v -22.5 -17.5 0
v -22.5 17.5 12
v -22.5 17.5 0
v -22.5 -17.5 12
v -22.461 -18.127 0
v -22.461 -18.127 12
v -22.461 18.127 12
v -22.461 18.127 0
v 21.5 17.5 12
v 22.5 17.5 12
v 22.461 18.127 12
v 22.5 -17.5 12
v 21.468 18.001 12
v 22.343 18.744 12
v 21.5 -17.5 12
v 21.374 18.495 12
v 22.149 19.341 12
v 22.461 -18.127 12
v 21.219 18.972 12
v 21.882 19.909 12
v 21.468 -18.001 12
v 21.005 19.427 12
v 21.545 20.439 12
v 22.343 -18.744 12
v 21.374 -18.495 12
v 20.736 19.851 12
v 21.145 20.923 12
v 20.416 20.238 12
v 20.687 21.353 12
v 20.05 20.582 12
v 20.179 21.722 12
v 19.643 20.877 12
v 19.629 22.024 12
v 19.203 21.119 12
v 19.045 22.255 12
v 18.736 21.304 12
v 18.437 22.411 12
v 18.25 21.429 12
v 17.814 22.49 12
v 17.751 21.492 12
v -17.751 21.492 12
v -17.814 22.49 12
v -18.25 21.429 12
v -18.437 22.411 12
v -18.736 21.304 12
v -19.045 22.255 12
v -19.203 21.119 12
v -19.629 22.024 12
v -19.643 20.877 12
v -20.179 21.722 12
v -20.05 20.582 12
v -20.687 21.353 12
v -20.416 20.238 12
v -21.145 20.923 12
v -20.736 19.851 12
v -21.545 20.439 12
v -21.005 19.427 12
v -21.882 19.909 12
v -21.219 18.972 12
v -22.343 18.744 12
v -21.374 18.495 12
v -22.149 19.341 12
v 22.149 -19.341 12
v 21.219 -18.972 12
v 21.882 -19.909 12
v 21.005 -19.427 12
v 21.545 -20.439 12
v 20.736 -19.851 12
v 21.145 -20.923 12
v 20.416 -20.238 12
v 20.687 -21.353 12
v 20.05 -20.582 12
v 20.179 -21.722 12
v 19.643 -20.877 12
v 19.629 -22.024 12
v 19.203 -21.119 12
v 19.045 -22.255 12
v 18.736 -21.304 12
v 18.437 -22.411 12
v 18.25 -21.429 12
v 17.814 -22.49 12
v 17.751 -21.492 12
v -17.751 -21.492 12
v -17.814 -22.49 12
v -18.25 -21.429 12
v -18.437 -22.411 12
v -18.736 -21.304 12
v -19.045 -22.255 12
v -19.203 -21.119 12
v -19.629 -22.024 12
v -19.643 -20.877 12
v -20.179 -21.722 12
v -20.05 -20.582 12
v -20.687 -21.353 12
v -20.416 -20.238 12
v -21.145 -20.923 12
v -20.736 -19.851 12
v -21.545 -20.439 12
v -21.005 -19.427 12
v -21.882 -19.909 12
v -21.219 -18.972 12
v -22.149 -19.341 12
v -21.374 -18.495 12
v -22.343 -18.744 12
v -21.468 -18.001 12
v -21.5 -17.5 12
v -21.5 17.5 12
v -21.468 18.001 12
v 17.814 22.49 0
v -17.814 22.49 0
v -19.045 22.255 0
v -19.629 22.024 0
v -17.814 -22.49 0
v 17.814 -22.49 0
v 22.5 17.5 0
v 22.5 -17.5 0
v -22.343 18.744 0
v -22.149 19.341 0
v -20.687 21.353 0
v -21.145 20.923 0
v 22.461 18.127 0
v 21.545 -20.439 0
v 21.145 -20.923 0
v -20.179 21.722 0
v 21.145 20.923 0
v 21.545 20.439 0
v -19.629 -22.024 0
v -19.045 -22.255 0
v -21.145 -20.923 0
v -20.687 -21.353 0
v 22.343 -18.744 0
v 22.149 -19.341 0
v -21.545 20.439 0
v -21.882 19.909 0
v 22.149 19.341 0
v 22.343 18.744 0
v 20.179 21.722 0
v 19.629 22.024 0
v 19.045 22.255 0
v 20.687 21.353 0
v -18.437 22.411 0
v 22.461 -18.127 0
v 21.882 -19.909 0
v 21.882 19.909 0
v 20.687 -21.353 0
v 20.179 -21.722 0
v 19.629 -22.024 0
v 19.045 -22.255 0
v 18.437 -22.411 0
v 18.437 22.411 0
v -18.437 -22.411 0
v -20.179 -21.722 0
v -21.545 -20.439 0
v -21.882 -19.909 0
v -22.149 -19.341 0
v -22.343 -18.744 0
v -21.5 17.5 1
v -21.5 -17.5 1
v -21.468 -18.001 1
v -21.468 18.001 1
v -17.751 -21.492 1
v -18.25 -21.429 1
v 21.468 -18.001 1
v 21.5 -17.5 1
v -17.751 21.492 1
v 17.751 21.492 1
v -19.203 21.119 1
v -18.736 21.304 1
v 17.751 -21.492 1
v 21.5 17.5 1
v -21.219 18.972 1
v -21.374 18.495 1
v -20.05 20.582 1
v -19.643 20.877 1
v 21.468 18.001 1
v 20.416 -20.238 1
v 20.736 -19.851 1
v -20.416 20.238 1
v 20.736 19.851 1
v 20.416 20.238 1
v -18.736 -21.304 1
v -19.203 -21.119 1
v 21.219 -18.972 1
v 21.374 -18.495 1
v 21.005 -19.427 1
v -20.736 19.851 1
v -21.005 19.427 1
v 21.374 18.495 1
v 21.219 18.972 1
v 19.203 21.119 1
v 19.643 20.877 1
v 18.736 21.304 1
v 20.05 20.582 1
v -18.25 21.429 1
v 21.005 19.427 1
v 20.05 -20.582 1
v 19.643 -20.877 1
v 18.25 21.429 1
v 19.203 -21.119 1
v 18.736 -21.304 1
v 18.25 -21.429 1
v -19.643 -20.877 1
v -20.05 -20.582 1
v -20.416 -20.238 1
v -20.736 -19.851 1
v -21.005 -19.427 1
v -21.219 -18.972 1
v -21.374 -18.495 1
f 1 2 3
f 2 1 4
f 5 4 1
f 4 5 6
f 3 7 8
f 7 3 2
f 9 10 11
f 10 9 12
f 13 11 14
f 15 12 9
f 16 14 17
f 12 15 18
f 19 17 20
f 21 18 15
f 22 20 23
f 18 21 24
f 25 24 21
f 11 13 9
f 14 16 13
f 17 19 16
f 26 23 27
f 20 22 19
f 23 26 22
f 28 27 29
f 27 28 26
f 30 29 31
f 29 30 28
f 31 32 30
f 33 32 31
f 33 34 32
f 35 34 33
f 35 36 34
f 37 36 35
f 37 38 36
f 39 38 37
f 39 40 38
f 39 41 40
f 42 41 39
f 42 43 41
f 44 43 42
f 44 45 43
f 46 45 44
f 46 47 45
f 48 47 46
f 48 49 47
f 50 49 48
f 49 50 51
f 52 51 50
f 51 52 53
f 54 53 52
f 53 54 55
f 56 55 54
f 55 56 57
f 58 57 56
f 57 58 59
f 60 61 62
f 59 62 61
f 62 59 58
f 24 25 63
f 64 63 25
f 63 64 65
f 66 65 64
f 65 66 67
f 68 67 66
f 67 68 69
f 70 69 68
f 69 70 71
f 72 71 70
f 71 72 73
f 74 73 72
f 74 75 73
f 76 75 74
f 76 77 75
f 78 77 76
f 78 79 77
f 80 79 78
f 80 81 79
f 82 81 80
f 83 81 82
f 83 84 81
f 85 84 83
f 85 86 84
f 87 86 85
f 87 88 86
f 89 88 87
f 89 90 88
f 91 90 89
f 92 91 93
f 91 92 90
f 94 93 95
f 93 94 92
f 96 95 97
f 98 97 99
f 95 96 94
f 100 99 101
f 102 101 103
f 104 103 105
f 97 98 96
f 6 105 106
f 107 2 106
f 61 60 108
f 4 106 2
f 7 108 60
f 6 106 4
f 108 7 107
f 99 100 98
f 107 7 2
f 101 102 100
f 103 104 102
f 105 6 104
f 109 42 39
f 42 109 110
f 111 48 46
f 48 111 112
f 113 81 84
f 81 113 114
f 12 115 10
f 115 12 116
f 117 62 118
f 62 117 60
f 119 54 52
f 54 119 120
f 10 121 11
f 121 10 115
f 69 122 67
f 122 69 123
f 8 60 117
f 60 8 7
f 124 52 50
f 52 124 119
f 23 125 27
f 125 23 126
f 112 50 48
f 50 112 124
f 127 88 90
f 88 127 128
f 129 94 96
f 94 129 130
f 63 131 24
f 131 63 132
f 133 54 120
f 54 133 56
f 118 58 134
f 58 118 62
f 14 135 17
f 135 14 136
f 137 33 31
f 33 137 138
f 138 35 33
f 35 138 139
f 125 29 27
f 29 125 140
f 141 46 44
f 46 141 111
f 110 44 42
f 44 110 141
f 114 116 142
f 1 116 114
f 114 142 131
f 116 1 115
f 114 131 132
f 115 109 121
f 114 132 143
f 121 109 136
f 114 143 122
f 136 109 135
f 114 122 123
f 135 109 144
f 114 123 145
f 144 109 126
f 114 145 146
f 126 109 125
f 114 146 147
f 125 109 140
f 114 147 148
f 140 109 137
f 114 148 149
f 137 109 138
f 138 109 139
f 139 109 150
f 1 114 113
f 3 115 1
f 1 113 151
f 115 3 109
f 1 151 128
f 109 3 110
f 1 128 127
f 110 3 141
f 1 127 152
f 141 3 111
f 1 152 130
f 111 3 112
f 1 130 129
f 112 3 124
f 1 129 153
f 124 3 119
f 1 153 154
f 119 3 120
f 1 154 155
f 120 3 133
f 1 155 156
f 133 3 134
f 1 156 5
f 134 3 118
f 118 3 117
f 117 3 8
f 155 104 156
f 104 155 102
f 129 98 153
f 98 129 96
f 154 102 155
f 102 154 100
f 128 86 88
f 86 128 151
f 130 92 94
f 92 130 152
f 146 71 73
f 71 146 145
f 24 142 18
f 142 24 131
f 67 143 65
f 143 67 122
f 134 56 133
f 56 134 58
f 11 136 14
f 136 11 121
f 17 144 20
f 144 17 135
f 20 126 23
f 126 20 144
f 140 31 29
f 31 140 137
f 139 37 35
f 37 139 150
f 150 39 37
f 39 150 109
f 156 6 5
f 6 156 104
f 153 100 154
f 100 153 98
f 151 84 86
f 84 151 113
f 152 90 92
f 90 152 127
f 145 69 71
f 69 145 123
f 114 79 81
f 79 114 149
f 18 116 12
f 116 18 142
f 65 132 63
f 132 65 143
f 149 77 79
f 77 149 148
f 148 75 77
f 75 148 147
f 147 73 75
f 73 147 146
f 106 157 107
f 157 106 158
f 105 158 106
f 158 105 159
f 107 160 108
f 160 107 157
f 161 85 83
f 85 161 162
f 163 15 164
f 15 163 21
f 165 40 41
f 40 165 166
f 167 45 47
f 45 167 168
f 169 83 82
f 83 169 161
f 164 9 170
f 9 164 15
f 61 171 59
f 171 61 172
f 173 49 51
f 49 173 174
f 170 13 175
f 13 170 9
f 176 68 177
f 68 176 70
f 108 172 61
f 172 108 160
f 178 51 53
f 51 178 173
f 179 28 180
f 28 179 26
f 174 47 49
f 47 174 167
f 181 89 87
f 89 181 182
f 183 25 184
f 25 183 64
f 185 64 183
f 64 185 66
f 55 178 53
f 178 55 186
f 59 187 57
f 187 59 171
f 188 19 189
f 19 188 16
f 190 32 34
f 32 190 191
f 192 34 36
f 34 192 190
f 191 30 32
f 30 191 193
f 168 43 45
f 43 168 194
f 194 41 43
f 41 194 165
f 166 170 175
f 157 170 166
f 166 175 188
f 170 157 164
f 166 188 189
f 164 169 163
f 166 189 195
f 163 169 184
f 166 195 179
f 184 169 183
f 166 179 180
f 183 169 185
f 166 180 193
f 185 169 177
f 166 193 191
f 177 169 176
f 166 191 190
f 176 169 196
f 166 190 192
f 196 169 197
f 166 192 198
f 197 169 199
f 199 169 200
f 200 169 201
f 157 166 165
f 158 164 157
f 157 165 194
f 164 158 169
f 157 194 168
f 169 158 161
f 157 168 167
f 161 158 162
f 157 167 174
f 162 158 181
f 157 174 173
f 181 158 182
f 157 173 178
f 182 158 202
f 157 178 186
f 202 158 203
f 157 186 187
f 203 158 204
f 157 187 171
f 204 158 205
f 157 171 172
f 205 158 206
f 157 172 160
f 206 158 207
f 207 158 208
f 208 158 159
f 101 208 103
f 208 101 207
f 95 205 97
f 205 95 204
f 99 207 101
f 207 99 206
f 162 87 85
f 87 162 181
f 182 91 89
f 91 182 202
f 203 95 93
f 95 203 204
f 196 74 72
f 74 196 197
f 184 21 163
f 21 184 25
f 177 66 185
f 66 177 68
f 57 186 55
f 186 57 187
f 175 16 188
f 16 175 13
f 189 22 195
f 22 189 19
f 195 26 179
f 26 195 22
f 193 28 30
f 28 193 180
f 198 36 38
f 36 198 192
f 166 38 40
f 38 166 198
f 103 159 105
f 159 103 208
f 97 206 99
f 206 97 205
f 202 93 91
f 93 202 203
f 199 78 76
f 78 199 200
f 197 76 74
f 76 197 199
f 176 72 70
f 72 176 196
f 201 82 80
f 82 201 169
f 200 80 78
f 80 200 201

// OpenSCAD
$fn = 50;


difference() {
	union() {
		hull() {
			translate(v = [-17.5000000000, 17.5000000000, 0]) {
				cylinder(h = 12, r = 5);
			}
			translate(v = [17.5000000000, 17.5000000000, 0]) {
				cylinder(h = 12, r = 5);
			}
			translate(v = [-17.5000000000, -17.5000000000, 0]) {
				cylinder(h = 12, r = 5);
			}
			translate(v = [17.5000000000, -17.5000000000, 0]) {
				cylinder(h = 12, r = 5);
			}
		}
	}
	union() {
		translate(v = [0, 0, 1]) {
			#hull() {
				translate(v = [-17.5000000000, 17.5000000000, 0]) {
					cylinder(h = 11, r = 4);
				}
				translate(v = [17.5000000000, 17.5000000000, 0]) {
					cylinder(h = 11, r = 4);
				}
				translate(v = [-17.5000000000, -17.5000000000, 0]) {
					cylinder(h = 11, r = 4);
				}
				translate(v = [17.5000000000, -17.5000000000, 0]) {
					cylinder(h = 11, r = 4);
				}
			}
		}
	}
}
